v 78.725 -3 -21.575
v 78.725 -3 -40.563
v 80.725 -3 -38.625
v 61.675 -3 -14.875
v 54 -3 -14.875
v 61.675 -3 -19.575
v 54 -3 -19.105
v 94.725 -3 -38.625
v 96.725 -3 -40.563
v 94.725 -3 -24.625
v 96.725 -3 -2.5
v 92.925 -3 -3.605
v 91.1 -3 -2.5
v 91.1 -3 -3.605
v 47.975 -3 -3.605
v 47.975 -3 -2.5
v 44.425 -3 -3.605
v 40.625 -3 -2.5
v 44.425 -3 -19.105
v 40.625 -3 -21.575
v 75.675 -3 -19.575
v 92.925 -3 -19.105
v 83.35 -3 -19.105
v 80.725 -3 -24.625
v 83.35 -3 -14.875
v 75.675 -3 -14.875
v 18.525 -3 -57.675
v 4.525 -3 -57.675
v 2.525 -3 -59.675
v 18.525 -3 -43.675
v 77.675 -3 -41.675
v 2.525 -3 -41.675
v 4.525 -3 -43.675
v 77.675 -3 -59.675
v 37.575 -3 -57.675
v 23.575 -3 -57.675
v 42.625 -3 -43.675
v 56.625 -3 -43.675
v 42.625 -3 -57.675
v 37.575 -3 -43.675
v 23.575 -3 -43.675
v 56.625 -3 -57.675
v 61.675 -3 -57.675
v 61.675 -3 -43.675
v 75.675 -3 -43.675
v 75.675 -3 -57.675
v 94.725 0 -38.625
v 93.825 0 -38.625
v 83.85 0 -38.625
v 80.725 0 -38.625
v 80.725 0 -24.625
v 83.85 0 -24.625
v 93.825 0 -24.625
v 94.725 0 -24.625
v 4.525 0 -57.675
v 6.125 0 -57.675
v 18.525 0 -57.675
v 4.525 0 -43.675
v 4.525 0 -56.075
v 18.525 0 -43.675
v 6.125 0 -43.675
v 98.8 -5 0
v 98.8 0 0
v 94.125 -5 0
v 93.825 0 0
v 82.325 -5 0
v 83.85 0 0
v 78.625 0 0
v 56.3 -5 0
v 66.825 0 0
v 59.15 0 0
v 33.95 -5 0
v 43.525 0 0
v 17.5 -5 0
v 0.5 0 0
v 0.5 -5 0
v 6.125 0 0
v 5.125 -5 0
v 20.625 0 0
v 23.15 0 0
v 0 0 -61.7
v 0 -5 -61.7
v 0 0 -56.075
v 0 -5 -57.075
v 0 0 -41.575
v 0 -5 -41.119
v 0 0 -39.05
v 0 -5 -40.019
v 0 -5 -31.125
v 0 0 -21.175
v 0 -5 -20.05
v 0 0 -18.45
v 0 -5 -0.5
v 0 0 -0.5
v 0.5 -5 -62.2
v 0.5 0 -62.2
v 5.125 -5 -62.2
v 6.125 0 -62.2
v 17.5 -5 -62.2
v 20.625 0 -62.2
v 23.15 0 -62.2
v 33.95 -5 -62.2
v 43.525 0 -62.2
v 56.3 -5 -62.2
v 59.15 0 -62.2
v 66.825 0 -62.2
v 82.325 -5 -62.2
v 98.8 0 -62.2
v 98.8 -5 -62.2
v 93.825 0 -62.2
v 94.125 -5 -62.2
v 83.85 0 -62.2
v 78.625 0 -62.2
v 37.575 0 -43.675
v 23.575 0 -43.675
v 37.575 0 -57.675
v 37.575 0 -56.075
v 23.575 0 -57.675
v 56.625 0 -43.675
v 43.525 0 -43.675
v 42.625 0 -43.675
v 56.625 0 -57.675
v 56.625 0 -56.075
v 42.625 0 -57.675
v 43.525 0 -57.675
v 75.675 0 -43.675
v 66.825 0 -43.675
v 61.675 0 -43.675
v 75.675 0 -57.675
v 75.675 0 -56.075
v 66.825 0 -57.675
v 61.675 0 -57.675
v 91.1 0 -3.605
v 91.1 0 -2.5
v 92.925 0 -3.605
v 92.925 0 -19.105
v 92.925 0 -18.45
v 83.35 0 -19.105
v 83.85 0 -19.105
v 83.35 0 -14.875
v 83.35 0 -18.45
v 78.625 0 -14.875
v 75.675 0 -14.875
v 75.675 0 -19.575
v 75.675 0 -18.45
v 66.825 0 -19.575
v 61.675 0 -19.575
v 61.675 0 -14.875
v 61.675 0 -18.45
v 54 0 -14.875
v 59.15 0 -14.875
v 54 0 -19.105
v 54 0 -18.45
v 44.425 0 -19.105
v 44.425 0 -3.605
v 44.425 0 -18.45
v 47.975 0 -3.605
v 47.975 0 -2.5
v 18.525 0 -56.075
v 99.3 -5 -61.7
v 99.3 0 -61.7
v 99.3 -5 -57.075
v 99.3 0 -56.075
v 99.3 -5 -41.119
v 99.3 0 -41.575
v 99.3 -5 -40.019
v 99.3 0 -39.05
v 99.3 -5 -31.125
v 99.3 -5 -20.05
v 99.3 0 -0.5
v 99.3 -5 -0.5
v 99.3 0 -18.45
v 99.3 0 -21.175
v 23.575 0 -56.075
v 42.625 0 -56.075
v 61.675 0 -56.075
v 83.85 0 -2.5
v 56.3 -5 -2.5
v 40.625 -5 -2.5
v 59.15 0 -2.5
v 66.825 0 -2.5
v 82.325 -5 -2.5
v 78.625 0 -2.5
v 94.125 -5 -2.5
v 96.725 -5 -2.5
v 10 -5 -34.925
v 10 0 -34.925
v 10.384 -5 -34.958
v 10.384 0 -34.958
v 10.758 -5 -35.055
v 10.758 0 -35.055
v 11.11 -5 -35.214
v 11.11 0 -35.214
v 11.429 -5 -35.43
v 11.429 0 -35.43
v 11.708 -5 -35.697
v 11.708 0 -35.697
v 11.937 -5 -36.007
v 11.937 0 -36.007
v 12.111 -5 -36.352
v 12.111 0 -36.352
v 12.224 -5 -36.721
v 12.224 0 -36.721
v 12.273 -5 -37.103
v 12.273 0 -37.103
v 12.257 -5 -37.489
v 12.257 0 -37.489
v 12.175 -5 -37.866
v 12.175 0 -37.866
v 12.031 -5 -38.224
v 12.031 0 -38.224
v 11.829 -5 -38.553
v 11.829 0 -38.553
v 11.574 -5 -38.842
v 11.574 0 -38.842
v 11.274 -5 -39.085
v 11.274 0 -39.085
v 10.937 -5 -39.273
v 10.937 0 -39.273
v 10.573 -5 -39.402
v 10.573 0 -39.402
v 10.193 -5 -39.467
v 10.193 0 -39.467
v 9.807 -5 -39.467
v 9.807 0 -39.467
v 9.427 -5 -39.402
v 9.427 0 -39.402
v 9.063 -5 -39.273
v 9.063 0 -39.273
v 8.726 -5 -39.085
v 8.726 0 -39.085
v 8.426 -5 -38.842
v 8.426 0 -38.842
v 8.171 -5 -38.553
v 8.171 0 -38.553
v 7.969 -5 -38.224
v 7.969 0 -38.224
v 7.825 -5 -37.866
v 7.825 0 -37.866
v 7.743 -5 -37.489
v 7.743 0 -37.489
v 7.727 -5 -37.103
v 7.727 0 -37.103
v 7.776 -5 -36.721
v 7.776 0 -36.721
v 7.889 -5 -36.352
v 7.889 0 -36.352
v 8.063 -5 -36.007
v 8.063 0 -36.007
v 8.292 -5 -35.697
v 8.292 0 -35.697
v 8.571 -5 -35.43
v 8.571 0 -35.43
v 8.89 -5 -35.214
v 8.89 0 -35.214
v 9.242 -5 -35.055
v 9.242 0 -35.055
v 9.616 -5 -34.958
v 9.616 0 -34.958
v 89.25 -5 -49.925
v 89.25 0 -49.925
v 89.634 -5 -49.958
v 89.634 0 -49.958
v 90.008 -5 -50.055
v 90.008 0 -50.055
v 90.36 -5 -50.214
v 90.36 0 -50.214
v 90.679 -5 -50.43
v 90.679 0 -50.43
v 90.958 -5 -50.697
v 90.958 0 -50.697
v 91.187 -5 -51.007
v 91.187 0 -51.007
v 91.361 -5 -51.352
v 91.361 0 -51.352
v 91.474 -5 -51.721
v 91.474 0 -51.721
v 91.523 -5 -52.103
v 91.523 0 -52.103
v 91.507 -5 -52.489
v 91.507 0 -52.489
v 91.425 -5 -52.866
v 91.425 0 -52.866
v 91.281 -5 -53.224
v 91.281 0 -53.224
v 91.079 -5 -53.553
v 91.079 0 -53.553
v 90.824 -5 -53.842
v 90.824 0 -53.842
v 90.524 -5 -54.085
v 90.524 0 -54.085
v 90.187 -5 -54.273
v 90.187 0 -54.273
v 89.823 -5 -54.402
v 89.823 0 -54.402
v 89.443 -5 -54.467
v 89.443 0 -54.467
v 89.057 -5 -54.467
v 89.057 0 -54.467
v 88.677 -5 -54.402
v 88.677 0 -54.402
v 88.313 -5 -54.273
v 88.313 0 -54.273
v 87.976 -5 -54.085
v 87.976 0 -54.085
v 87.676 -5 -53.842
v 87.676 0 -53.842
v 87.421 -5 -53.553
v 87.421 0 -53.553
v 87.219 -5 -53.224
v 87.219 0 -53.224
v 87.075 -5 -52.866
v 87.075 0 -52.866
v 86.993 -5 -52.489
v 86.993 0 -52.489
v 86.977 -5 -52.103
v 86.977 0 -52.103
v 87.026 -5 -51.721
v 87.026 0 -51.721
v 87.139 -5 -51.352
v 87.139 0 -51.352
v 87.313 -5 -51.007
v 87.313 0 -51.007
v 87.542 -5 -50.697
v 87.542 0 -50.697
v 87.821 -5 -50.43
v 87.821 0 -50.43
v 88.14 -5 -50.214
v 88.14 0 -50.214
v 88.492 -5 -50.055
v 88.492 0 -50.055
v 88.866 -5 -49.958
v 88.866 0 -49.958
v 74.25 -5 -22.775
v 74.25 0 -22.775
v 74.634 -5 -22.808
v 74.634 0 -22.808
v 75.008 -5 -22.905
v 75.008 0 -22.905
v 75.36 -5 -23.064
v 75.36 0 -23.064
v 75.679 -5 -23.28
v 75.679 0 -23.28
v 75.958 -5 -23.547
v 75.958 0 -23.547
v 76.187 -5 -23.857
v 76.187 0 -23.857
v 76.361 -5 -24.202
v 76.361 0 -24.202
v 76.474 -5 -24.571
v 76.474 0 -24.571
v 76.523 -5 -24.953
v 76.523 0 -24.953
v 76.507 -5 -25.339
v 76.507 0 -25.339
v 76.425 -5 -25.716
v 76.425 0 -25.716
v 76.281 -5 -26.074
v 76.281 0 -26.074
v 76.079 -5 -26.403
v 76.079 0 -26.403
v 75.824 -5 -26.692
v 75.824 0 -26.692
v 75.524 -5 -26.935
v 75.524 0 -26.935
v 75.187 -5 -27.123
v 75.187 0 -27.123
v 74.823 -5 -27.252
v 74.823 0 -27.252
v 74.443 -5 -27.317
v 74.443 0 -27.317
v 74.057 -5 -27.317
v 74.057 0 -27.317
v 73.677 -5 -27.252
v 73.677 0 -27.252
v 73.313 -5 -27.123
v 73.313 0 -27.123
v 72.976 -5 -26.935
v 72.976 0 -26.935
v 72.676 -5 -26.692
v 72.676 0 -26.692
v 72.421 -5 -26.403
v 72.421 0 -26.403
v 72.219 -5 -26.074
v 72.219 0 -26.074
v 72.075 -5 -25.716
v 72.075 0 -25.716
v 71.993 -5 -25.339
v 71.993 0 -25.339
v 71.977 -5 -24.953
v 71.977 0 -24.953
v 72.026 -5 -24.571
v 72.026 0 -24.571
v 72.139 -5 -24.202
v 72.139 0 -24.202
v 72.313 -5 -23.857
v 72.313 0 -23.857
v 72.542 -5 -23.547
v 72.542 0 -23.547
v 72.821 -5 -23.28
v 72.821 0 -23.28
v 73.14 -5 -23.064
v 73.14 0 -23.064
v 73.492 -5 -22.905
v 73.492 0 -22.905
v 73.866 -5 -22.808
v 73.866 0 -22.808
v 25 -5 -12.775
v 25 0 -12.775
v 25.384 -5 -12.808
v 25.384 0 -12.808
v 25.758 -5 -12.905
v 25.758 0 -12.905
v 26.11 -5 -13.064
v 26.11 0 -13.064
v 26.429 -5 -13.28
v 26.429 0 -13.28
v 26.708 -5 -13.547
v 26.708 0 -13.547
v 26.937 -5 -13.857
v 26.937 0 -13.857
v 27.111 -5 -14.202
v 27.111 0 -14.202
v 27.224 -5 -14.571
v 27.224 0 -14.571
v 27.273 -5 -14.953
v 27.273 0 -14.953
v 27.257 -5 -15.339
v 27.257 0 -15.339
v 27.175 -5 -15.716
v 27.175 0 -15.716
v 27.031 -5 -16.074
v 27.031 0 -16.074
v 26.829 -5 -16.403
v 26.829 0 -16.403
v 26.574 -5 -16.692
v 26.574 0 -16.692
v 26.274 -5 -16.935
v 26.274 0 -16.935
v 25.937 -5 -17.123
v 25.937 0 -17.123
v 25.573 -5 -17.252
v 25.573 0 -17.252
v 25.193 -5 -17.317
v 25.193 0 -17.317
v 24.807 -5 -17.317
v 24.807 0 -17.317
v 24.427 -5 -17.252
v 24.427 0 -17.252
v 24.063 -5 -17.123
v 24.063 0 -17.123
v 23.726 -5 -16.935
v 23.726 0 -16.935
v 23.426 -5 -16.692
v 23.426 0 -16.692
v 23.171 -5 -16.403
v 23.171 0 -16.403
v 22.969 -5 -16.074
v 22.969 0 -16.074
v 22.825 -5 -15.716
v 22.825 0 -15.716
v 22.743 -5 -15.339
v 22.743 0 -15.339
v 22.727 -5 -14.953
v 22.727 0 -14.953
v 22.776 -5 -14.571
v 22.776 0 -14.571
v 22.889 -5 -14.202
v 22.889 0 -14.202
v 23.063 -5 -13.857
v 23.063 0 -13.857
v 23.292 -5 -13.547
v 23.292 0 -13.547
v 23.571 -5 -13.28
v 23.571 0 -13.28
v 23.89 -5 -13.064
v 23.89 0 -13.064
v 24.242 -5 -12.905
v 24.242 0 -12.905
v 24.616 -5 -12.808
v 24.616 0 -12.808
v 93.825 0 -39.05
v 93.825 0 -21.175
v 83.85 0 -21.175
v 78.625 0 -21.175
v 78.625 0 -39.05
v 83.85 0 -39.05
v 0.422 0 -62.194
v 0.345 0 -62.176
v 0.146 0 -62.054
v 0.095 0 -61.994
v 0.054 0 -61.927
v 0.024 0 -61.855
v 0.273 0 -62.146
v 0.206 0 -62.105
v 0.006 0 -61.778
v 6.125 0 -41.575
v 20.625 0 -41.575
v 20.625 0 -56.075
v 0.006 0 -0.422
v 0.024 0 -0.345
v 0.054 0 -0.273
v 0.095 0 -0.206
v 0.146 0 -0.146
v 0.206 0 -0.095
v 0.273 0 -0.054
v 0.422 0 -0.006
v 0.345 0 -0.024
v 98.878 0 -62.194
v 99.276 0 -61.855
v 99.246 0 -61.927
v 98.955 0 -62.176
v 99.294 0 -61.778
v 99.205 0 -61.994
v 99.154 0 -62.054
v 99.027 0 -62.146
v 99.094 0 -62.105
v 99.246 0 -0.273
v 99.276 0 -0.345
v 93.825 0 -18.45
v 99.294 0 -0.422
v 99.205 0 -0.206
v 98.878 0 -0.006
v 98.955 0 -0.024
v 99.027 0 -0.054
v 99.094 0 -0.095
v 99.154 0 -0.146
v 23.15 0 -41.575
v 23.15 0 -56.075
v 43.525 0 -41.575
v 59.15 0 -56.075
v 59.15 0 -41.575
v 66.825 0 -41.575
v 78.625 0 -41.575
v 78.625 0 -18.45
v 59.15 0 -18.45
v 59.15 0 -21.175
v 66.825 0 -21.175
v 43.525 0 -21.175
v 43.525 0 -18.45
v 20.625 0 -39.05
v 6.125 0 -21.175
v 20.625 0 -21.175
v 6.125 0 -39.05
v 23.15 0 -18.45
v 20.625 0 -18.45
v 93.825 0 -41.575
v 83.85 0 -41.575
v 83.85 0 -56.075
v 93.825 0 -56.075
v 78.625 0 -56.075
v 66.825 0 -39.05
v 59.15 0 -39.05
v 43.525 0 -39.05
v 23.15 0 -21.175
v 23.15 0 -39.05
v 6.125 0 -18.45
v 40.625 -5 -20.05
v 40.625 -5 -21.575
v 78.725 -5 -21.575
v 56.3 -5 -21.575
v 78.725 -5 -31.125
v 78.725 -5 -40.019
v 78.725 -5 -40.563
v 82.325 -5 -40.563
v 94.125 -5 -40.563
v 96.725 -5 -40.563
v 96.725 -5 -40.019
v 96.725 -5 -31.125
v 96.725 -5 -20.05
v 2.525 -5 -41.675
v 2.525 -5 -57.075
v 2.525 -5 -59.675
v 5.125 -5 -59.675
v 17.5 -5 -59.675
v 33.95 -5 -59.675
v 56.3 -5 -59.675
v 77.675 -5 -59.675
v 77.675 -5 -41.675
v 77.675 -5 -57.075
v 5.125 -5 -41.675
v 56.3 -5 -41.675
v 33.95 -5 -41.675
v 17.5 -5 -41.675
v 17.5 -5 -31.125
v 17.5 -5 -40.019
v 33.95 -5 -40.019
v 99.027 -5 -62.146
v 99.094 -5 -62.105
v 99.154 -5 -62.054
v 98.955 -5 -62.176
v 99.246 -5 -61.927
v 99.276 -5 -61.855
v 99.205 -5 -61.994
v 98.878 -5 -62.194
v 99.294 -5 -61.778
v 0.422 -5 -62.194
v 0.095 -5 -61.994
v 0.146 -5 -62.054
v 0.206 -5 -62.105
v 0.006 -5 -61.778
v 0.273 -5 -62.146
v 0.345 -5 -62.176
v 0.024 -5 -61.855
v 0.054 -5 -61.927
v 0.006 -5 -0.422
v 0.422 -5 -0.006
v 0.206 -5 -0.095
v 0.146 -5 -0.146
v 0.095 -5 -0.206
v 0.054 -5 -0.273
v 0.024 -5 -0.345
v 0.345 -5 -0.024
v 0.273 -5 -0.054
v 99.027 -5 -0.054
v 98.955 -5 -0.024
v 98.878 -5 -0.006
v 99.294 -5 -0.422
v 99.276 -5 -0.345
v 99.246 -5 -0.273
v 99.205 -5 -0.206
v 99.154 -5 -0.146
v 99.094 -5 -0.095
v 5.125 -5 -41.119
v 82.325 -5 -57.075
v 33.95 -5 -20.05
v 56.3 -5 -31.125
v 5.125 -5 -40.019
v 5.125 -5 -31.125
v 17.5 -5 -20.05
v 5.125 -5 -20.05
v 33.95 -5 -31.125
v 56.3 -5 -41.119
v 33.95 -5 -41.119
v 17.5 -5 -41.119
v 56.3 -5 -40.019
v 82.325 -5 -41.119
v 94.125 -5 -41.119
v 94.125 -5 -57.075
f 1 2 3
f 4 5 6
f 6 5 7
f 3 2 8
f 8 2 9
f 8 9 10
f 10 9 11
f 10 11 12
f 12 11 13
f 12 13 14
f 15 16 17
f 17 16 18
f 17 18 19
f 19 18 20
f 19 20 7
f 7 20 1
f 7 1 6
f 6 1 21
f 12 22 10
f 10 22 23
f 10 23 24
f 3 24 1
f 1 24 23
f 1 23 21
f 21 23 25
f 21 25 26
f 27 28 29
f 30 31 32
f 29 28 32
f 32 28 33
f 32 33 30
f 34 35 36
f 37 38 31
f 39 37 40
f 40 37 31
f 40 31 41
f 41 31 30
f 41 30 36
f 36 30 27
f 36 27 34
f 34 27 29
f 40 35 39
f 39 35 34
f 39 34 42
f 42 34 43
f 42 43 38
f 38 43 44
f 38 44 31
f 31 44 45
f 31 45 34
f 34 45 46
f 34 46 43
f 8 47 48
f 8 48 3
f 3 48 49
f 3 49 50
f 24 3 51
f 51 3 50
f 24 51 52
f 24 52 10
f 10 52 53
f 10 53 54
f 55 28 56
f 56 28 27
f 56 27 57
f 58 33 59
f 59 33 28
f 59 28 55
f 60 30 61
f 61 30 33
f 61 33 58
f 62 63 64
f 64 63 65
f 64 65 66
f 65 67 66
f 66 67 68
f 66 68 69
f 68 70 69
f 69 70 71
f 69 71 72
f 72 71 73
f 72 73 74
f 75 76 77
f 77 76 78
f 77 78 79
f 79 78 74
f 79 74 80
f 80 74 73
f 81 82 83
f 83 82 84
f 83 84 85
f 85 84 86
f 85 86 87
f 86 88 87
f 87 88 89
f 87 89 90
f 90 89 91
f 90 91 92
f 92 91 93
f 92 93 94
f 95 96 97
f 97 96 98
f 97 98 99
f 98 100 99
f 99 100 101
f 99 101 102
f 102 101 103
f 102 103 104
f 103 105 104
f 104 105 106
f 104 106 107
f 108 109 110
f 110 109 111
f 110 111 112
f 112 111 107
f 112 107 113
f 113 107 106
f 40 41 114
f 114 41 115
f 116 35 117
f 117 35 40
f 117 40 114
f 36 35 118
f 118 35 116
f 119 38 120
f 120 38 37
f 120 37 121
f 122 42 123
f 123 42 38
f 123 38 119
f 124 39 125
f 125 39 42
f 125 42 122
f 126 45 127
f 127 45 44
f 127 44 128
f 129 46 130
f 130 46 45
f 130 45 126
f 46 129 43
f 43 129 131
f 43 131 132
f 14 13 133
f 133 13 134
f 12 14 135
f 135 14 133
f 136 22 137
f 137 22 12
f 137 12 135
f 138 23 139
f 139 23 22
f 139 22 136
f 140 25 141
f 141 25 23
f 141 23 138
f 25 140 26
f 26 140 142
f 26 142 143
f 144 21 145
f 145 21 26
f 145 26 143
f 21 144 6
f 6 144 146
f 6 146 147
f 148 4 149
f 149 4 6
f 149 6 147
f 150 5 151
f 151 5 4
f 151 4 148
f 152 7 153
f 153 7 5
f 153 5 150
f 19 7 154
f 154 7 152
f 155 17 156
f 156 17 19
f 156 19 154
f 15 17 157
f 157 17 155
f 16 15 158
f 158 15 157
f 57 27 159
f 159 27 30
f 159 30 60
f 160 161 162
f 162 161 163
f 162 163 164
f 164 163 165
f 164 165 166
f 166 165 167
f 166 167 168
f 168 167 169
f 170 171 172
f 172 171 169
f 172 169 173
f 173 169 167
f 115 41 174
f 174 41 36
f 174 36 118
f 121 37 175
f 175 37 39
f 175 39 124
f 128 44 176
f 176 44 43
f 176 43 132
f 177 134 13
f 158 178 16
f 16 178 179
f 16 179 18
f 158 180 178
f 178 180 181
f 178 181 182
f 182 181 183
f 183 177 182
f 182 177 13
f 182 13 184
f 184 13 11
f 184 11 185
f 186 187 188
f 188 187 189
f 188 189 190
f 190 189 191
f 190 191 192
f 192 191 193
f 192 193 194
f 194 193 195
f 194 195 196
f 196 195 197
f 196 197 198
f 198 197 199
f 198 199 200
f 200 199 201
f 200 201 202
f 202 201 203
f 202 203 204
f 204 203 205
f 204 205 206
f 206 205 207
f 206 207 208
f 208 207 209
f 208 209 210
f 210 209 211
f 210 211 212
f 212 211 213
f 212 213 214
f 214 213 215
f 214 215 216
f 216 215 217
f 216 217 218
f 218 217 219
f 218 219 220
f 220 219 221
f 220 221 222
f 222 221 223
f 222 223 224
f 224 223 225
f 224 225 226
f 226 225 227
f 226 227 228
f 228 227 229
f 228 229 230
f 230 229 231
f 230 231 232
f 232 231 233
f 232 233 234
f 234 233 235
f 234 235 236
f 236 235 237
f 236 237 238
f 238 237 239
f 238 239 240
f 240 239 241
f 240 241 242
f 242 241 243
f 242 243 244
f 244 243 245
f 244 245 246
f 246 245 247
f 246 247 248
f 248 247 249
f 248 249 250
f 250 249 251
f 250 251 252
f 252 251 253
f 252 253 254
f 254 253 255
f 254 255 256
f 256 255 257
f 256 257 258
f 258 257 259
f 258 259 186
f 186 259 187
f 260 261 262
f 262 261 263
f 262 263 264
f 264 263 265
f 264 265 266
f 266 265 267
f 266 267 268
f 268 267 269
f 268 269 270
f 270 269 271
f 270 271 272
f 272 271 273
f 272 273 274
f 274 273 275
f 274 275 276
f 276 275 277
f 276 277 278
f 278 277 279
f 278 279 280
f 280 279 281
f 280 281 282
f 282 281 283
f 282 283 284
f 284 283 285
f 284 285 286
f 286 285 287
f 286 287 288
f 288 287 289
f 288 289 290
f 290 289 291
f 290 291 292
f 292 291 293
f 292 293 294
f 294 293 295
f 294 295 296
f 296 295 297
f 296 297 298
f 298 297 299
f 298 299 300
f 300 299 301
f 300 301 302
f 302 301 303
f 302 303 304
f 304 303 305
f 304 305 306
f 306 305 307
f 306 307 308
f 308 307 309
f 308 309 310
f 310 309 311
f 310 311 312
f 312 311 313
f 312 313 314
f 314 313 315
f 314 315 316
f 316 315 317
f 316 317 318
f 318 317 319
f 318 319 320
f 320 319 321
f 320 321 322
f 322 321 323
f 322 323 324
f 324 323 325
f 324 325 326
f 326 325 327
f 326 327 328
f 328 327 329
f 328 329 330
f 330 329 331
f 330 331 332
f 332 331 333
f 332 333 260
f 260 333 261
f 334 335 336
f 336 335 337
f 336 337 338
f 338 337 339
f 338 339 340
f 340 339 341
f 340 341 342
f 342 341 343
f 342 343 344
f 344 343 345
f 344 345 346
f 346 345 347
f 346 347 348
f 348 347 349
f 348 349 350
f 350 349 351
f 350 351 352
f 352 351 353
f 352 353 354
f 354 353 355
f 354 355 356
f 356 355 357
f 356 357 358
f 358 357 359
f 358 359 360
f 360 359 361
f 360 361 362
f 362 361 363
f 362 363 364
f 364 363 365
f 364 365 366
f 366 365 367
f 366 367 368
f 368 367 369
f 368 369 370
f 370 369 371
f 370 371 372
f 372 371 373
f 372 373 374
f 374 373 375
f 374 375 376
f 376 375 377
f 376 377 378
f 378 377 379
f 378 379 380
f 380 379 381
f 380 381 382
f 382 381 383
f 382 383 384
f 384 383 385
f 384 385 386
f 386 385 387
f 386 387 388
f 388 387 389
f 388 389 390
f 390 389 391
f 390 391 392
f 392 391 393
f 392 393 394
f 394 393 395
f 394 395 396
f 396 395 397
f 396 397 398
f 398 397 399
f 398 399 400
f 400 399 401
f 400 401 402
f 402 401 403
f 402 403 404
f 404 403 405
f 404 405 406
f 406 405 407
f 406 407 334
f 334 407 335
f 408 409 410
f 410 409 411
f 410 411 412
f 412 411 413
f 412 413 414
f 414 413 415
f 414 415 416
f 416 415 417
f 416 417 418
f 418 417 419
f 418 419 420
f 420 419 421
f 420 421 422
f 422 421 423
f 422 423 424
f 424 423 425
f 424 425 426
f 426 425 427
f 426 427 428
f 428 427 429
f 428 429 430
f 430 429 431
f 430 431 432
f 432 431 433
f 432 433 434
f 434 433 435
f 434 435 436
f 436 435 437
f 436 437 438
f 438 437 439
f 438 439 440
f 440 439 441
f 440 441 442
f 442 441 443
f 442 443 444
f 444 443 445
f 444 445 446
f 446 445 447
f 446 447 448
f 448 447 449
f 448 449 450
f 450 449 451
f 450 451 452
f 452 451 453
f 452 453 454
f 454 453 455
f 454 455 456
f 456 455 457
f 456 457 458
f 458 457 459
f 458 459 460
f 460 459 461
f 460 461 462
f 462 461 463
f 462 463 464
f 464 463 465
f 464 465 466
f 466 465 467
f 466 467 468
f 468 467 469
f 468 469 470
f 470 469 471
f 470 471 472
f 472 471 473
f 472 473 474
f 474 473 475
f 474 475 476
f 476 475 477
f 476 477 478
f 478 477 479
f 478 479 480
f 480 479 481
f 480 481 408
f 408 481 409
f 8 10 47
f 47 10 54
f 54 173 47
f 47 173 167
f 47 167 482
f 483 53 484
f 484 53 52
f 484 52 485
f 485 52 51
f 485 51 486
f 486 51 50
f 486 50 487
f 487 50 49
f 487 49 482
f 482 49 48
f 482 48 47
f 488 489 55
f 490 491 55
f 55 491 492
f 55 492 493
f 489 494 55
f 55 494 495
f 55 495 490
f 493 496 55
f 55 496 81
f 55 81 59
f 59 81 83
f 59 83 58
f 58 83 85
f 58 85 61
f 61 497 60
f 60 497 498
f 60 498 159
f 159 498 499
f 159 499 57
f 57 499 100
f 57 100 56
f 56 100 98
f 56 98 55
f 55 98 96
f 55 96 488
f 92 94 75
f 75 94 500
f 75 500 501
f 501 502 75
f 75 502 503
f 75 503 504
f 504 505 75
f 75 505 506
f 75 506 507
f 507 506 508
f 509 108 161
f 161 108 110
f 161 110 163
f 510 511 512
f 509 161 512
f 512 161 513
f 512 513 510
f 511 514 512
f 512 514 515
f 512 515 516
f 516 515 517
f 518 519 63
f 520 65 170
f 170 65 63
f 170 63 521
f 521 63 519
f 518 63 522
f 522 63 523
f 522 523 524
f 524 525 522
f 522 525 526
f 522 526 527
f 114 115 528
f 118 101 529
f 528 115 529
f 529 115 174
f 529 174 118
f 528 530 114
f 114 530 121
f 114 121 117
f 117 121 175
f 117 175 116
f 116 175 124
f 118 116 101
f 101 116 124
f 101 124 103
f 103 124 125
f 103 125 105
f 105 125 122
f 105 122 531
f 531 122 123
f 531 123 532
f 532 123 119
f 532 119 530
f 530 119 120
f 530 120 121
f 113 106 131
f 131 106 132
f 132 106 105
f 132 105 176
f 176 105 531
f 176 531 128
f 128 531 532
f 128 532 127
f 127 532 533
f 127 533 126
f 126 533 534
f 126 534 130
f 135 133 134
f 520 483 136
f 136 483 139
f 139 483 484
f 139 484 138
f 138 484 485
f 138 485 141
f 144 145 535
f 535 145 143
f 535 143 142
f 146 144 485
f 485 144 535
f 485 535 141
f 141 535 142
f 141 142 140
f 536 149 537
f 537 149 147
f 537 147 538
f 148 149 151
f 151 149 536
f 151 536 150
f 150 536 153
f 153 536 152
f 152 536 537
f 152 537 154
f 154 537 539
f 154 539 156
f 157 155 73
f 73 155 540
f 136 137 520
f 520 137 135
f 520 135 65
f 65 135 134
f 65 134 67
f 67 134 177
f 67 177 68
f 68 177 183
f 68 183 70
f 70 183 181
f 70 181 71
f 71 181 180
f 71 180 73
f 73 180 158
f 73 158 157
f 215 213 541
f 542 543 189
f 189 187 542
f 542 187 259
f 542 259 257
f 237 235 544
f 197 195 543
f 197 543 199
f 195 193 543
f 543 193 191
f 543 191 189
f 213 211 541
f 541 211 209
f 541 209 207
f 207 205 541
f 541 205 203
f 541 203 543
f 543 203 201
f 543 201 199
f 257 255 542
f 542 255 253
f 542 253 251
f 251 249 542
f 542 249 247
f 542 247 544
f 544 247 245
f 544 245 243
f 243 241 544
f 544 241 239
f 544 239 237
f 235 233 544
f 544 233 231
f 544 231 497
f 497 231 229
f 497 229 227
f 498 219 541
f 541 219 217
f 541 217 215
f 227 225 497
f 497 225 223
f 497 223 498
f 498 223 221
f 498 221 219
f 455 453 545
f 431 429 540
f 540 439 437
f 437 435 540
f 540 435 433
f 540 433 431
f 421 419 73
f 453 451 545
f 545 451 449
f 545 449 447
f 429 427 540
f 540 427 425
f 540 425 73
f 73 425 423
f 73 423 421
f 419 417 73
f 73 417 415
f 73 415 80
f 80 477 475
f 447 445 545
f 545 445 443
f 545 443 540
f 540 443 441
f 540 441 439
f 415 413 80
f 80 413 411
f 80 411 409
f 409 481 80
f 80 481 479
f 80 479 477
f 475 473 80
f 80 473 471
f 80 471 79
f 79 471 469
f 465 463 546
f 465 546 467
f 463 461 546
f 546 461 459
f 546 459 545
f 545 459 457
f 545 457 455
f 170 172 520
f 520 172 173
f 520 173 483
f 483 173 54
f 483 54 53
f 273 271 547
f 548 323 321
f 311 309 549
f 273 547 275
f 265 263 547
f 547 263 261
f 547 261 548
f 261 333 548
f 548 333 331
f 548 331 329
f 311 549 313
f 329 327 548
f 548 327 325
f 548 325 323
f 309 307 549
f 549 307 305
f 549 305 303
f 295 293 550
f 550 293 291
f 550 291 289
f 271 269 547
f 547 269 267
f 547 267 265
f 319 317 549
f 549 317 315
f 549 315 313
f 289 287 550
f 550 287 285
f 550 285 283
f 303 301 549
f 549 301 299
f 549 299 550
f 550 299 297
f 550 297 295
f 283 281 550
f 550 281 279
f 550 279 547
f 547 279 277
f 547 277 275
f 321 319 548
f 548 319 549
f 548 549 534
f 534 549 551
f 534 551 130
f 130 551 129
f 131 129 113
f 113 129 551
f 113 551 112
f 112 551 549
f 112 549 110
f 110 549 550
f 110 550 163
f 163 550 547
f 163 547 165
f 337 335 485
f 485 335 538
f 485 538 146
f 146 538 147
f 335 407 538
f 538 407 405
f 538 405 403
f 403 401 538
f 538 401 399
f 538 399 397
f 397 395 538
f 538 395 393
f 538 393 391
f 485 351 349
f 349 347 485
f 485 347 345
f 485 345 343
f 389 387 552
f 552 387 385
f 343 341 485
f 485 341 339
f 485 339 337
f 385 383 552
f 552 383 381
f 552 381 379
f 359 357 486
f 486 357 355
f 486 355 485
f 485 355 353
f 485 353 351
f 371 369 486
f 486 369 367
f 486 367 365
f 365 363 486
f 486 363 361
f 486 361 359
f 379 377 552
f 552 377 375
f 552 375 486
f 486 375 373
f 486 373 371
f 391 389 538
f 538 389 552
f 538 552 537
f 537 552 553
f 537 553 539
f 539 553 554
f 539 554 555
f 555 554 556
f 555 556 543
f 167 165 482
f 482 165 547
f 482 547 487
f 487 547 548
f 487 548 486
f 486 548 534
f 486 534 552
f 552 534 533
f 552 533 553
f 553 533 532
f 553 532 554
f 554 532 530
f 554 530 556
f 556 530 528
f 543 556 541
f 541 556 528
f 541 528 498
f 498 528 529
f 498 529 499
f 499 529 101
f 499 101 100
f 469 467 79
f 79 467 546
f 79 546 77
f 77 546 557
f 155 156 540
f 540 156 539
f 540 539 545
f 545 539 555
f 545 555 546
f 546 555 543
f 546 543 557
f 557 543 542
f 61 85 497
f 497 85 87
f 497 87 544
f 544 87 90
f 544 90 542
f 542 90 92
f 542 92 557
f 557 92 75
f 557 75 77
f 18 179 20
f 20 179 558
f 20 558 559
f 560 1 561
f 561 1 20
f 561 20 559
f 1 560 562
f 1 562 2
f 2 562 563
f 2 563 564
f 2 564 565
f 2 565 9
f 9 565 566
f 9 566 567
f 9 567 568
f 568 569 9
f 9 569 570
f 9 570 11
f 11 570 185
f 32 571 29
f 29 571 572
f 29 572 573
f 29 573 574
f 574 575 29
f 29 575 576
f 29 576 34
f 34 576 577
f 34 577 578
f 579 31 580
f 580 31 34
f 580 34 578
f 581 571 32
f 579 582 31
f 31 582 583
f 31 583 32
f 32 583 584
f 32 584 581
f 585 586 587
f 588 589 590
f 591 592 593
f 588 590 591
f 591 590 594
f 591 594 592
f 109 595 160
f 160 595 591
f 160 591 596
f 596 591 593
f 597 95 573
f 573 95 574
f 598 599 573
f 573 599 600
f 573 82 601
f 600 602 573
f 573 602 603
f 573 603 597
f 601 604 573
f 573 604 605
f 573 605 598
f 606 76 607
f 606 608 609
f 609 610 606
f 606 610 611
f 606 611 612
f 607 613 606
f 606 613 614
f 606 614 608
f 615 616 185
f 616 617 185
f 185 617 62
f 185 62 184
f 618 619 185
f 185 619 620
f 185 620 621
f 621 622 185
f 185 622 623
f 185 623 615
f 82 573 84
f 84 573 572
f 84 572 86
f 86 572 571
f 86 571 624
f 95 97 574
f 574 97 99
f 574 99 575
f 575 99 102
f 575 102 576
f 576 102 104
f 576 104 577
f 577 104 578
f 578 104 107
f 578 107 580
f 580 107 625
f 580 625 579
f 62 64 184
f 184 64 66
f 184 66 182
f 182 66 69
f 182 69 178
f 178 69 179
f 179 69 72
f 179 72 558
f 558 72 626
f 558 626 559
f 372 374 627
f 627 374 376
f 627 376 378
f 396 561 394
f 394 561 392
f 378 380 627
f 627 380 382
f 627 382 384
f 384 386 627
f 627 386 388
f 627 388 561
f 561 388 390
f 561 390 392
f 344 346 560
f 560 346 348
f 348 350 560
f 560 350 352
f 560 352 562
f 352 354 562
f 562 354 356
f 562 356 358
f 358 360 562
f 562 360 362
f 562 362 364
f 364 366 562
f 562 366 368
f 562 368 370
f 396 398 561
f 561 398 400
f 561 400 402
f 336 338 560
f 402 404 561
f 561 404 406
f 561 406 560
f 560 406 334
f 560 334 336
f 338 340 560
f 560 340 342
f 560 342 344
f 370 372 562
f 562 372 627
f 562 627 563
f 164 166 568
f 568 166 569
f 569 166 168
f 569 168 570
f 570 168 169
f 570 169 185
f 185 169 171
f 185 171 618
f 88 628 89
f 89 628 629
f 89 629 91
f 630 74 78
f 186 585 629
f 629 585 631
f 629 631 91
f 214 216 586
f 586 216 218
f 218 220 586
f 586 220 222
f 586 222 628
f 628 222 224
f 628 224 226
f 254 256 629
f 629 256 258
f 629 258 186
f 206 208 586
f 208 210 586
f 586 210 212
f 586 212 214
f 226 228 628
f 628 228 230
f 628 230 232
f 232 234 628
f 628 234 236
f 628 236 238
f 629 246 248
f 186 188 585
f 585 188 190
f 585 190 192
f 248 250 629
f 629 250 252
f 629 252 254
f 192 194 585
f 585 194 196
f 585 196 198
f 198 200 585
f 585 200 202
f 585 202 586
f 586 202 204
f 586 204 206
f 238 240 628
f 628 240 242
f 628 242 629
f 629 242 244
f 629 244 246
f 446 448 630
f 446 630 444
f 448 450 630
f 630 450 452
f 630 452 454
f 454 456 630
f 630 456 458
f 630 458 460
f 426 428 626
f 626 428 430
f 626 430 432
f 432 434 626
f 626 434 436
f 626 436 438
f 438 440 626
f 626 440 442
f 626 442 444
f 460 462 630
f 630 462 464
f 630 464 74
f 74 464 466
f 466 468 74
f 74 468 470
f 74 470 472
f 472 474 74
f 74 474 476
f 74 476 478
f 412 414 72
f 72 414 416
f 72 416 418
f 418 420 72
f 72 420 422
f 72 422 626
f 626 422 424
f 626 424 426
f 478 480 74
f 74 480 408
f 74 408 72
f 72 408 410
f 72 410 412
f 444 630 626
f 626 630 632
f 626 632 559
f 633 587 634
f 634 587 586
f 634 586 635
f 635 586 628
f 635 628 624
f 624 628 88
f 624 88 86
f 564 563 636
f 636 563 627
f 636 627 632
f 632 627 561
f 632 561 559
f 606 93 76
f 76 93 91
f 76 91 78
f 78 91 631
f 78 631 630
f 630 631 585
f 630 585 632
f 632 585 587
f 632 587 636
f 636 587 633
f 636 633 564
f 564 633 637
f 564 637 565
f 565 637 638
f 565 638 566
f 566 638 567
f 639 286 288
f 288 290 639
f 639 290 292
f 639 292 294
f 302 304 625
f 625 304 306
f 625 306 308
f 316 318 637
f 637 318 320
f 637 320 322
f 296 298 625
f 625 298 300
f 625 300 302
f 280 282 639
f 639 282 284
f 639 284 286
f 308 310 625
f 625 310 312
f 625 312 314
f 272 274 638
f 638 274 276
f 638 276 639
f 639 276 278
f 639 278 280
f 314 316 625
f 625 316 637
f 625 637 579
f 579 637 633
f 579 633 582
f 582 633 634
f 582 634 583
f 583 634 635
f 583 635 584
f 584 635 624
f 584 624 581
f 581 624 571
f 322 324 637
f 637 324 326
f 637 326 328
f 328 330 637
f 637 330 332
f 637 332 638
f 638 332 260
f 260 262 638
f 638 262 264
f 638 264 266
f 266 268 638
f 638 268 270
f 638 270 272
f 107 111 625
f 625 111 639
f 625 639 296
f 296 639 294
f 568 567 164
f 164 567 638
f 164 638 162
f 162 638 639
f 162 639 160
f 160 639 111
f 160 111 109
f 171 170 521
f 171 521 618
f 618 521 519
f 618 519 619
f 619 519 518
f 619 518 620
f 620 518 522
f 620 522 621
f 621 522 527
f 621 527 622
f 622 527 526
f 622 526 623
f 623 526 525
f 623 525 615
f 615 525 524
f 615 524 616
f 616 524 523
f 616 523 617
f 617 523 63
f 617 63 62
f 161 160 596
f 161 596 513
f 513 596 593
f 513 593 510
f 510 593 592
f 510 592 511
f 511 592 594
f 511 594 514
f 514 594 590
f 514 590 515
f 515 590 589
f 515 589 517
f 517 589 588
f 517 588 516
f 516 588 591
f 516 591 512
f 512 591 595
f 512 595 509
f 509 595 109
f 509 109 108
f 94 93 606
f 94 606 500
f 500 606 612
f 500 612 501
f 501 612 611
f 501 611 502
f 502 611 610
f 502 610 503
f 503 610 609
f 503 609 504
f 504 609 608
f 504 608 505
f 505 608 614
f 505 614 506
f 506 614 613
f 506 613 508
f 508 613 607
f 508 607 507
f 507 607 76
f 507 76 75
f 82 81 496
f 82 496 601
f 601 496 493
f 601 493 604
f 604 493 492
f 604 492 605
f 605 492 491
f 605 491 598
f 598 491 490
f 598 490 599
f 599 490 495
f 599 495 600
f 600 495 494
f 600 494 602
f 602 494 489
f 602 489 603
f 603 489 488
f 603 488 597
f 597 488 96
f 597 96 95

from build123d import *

# Parameters (mm, degrees)
SKETCH1_W           = 99.3
SKETCH1_H           = 62.2
SKETCH1_R           = 2.275
SKETCH1_W_2         = 14
SKETCH1_H_2         = 14
BOSS_EXTRUDE1_DEPTH = 3
SKETCH6_W           = 99.3
SKETCH6_H           = 62.2
SKETCH6_W_2         = 75.15
SKETCH6_H_2         = 18
SKETCH6_R           = 2.275
BOSS_EXTRUDE2_DEPTH = 2
FILLET1_R           = 0.5


with BuildPart() as part:
    # Sketch1 → Boss-Extrude1 (new body)
    with BuildSketch(Plane(origin=(0, 0, 0), x_dir=(1, 0, 0), z_dir=(0, 1, 0))):
        with Locations((49.65, 31.1)):
            Rectangle(SKETCH1_W, SKETCH1_H)
        with Locations(Location((10, 37.2, 0), (0, 0, 270))):
            Circle(SKETCH1_R, mode=Mode.SUBTRACT)
        with Locations(Location((89.25, 52.2, 0), (0, 0, 270))):
            Circle(SKETCH1_R, mode=Mode.SUBTRACT)
        with Locations(Location((74.25, 25.05, 0), (0, 0, 270))):
            Circle(SKETCH1_R, mode=Mode.SUBTRACT)
        with Locations(Location((25, 15.05, 0), (0, 0, 270))):
            Circle(SKETCH1_R, mode=Mode.SUBTRACT)
        with Locations((11.525, 50.675)):
            Rectangle(SKETCH1_W_2, SKETCH1_H_2, mode=Mode.SUBTRACT)
        with Locations((30.575, 50.675)):
            Rectangle(SKETCH1_W_2, SKETCH1_H_2, mode=Mode.SUBTRACT)
        with Locations((49.625, 50.675)):
            Rectangle(SKETCH1_W_2, SKETCH1_H_2, mode=Mode.SUBTRACT)
        with Locations((68.675, 50.675)):
            Rectangle(SKETCH1_W_2, SKETCH1_H_2, mode=Mode.SUBTRACT)
        with Locations((87.725, 31.625)):
            Rectangle(SKETCH1_W_2, SKETCH1_H_2, mode=Mode.SUBTRACT)
        Polygon((61.675, 19.575), (75.675, 19.575), (75.675, 14.875), (83.35, 14.875), (83.35, 19.105), (92.925, 19.105), (92.925, 3.605), (91.1, 3.605), (91.1, 2.5), (47.975, 2.5), (47.975, 3.605), (44.425, 3.605), (44.425, 19.105), (54, 19.105), (54, 14.875), (61.675, 14.875), align=None, mode=Mode.SUBTRACT)
    extrude(amount=-BOSS_EXTRUDE1_DEPTH)

    # Sketch6 → Boss-Extrude2 (add)
    with BuildSketch(Plane.XZ.offset(3)):
        with Locations((49.65, -31.1)):
            Rectangle(SKETCH6_W, SKETCH6_H)
        with Locations((40.1, -50.675)):
            Rectangle(SKETCH6_W_2, SKETCH6_H_2, mode=Mode.SUBTRACT)
        with Locations(Location((10, -37.2, 0), (0, 0, 90))):
            Circle(SKETCH6_R, mode=Mode.SUBTRACT)
        with Locations(Location((89.25, -52.2, 0), (0, 0, 90))):
            Circle(SKETCH6_R, mode=Mode.SUBTRACT)
        with Locations(Location((25, -15.05, 0), (0, 0, 90))):
            Circle(SKETCH6_R, mode=Mode.SUBTRACT)
        with Locations(Location((74.25, -25.05, 0), (0, 0, 90))):
            Circle(SKETCH6_R, mode=Mode.SUBTRACT)
        Polygon((96.725, -2.5), (96.725, -40.562928412), (78.725, -40.562928412), (78.725, -21.575), (40.625, -21.575), (40.625, -2.5), (47.975, -2.5), (91.1, -2.5), align=None, mode=Mode.SUBTRACT)
    extrude(amount=BOSS_EXTRUDE2_DEPTH)

    # Fillet1
    fillet1_edges = [part.edges().sort_by_distance(p)[0] for p in [
        (0, -2.5, 0),
        (0, -2.5, -62.2),
        (99.3, -2.5, -62.2),
        (99.3, -2.5, 0),
    ]]
    fillet(fillet1_edges, radius=FILLET1_R)


solid = part.part
